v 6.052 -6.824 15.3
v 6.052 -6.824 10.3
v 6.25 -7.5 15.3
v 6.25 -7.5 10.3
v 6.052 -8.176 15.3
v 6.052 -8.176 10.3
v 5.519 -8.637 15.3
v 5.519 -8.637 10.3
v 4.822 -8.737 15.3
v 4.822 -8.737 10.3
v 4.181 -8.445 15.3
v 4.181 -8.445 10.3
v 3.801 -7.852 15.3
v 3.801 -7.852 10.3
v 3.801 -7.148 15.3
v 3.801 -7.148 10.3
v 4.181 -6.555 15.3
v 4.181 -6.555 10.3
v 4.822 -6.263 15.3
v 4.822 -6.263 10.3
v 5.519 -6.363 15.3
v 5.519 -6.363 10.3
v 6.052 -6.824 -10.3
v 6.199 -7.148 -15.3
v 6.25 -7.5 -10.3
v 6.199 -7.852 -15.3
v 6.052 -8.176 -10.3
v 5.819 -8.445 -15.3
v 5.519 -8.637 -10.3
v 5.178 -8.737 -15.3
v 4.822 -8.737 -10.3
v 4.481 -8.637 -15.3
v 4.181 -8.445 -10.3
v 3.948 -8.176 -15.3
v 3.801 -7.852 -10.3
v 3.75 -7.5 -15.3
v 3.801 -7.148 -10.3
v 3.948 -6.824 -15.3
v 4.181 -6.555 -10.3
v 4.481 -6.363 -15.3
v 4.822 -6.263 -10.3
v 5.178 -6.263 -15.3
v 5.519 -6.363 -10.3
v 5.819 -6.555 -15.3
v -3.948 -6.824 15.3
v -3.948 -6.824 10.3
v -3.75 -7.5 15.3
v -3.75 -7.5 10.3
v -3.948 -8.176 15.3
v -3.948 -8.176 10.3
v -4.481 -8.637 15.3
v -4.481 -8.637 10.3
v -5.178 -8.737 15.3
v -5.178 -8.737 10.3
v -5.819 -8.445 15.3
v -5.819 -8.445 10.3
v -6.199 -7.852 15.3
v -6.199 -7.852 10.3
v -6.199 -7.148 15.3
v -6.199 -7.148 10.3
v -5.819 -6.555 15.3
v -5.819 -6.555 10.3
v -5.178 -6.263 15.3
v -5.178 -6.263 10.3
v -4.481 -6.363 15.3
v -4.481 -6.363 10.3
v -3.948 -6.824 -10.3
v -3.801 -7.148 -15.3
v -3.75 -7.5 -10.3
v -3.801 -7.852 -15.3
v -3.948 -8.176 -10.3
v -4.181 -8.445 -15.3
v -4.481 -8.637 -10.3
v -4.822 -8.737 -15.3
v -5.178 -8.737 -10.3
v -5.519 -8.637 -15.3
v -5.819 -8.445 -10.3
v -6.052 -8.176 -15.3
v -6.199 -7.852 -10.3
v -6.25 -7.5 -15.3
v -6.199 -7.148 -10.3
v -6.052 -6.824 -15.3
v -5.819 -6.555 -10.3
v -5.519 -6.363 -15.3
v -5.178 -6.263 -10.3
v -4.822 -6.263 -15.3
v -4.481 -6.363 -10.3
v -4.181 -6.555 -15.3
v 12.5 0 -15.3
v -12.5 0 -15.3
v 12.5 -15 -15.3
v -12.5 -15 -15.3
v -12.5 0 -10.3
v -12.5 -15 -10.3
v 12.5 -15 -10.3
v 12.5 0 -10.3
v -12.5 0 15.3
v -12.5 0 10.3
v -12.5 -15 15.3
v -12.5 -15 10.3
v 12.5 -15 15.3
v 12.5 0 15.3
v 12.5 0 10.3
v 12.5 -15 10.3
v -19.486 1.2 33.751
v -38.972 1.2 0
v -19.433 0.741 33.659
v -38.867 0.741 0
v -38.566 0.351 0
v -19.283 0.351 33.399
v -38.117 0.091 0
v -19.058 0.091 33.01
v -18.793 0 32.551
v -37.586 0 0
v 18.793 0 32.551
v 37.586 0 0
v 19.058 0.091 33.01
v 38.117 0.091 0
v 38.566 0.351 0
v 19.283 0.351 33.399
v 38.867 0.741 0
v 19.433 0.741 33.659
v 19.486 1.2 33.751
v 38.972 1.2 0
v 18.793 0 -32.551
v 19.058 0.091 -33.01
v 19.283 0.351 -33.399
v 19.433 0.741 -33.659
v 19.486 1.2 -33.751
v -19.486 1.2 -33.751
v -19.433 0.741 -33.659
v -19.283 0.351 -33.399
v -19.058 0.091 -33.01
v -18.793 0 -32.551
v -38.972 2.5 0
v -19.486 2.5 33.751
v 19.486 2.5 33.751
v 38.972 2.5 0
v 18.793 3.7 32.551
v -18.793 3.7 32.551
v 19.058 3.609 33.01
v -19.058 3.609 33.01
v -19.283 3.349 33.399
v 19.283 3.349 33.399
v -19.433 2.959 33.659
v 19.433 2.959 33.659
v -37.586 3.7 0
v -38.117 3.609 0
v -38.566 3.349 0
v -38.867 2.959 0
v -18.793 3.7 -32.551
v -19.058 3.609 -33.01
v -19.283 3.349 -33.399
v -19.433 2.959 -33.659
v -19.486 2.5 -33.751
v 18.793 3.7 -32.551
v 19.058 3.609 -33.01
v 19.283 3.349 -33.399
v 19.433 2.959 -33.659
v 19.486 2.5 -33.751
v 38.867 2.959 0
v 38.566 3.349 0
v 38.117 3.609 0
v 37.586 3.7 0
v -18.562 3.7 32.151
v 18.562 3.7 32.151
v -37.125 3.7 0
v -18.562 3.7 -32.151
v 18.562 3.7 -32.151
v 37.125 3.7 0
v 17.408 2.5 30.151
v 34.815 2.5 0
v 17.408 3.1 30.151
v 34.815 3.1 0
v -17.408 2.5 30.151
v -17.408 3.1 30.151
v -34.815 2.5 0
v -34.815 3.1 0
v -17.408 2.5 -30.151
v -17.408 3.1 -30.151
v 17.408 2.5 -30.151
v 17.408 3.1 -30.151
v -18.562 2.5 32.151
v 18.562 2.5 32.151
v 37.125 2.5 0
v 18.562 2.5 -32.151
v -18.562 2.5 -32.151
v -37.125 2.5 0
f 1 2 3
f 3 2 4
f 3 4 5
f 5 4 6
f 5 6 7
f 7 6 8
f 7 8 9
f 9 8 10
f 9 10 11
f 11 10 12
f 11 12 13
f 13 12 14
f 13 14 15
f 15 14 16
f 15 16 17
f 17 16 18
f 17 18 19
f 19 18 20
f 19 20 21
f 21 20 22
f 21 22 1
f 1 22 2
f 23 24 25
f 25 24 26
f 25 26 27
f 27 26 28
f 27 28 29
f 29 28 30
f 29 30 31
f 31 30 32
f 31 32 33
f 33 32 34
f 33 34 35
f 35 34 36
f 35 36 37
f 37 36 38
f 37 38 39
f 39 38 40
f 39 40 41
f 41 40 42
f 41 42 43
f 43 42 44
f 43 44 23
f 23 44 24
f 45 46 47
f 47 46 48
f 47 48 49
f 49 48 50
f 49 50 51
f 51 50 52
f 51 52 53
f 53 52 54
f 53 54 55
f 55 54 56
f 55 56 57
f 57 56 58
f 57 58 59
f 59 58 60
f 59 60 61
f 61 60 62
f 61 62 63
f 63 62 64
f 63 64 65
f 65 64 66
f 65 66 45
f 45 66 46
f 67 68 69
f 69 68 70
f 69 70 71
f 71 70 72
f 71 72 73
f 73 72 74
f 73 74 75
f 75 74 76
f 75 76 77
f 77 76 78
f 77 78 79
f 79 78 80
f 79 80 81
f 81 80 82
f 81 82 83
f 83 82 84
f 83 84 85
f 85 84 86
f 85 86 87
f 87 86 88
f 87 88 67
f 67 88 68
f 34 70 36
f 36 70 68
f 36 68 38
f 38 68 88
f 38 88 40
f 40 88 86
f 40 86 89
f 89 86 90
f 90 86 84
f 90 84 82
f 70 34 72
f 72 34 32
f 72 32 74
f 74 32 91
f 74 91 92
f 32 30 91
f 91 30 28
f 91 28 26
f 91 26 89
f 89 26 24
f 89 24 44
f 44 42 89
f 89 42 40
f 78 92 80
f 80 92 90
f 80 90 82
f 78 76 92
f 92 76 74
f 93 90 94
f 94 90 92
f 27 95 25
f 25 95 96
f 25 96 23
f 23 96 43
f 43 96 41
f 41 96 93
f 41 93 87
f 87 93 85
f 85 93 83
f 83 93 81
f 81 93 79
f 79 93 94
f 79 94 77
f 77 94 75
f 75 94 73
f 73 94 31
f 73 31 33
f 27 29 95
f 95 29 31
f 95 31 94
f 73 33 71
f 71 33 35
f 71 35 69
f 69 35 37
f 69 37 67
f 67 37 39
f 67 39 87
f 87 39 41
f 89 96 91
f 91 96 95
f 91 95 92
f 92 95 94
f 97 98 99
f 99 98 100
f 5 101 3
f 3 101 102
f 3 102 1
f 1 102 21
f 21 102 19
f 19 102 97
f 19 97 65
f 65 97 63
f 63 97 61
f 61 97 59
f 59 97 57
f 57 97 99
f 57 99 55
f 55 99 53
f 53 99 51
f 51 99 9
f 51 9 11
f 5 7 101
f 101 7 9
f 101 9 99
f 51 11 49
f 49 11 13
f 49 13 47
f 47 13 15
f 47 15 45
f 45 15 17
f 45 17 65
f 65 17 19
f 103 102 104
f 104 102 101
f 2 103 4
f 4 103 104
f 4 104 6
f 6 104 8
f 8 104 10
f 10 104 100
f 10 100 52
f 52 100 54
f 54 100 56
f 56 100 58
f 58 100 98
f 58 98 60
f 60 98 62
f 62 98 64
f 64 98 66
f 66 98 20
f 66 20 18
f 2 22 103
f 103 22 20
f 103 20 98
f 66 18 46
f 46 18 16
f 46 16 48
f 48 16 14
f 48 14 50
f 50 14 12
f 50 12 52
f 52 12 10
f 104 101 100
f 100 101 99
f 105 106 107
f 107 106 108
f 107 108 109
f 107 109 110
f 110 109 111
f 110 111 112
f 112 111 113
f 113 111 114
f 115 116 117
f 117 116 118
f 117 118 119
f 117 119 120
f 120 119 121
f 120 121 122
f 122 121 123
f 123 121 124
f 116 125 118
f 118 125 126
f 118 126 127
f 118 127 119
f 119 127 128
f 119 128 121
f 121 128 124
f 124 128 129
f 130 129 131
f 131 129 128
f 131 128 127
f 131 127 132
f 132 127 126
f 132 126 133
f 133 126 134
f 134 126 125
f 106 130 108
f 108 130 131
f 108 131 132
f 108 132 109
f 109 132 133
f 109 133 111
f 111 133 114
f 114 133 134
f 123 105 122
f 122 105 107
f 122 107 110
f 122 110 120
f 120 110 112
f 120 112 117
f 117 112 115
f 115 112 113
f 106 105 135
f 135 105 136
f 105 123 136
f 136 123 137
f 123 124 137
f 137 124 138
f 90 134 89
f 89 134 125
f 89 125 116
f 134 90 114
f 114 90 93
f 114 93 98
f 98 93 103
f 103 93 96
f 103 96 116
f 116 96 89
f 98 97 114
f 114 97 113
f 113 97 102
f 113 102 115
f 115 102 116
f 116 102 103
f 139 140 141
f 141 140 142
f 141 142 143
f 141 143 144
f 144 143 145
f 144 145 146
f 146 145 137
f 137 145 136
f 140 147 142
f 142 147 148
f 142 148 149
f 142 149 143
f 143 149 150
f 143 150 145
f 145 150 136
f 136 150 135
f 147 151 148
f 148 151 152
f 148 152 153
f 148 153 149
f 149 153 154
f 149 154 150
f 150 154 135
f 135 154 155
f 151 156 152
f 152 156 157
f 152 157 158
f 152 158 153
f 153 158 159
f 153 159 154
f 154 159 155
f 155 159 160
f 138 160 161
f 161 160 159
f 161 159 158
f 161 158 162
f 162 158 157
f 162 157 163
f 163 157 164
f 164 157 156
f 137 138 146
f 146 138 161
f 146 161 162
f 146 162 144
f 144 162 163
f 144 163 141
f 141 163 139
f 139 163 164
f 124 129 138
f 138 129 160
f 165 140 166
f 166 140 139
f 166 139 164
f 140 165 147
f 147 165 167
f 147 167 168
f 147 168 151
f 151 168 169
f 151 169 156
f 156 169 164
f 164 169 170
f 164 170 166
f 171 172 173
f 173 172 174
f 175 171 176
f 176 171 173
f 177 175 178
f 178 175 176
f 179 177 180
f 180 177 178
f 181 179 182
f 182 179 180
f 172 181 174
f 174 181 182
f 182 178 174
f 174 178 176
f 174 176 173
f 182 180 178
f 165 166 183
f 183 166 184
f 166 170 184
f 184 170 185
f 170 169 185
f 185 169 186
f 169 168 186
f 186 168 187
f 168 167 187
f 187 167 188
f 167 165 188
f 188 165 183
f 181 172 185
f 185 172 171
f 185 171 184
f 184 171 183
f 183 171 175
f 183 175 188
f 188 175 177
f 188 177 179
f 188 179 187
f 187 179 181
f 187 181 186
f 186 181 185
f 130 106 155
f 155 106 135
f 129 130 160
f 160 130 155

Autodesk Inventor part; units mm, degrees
ref_plane "YZ Plane" through (0, 0, 0) normal (1, 0, 0) x (0, 1, 0)
ref_plane "XZ Plane" through (0, 0, 0) normal (0, 1, 0) x (-1, 0, 0)
ref_plane "XY Plane" through (0, 0, 0) normal (0, 0, 1) x (1, 0, 0)
sketch "스케치1" plane through (0, 0, 0) normal (0, 1, 0) x (-1, 0, 0)
  line L0 (17.6385, -30.5508) -> (-17.6385, -30.5508)
  line L1 (-17.6385, -30.5508) -> (-35.277, 0)
  line L2 (-35.277, 0) -> (-17.6385, 30.5508)
  line L3 (-17.6385, 30.5508) -> (17.6385, 30.5508)
  line L4 (17.6385, 30.5508) -> (35.277, 0)
  line L5 (35.277, 0) -> (17.6385, -30.5508)
  line L6 (19.486, -33.7508) -> (-19.486, -33.7508)
  line L7 (-19.486, -33.7508) -> (-38.972, 0)
  line L8 (-38.972, 0) -> (-19.486, 33.7508)
  line L9 (-19.486, 33.7508) -> (19.486, 33.7508)
  line L10 (19.486, 33.7508) -> (38.972, 0)
  line L11 (38.972, 0) -> (19.486, -33.7508)
  point P0 (0, 0)
  point P1 (0, 0)
  point P2 (0, 0)
  dimension "d0" = 70.554
  dimension "d1" = 3.2
extrude "돌출1" add sketch "스케치1" along normal blind 3.7 contours L0 L1 L2 L3 L4 L5 | L6 L7 L8 L9 L10 L11
sketch "스케치2" plane through (0, 3.7, 0) normal (0, 1, 0) x (1, 0, 0)
  line L0 (-18.5623, 32.1508) -> (18.5623, 32.1508)
  line L1 (18.5623, 32.1508) -> (37.1245, 0)
  line L2 (37.1245, 0) -> (18.5623, -32.1508)
  line L3 (18.5623, -32.1508) -> (-18.5623, -32.1508)
  line L4 (-18.5623, -32.1508) -> (-37.1245, 0)
  line L5 (-37.1245, 0) -> (-18.5623, 32.1508)
  line L6 (-19.486, 33.7508) -> (-38.972, 0) projected
  point P0 (0, 0)
  point P1 (0, 0)
  dimension "d4" = 1.6
extrude "돌출2" cut sketch "스케치2" against normal blind 1.2
sketch "스케치3" plane through (0, 2.5, 0) normal (0, 1, 0) x (1, 0, 0)
  line L0 (17.4076, -30.1508) -> (-17.4076, -30.1508)
  line L1 (-17.4076, -30.1508) -> (-34.8151, 0)
  line L2 (-34.8151, 0) -> (-17.4076, 30.1508)
  line L3 (-17.4076, 30.1508) -> (17.4076, 30.1508)
  line L4 (17.4076, 30.1508) -> (34.8151, 0)
  line L5 (34.8151, 0) -> (17.4076, -30.1508)
  line L6 (-18.5623, 32.1508) -> (18.5623, 32.1508) projected
  point P0 (0, 0)
  point P1 (0, 0)
  dimension "d7" = 2
extrude "돌출3" add sketch "스케치3" along normal blind 0.6
fillet "모깎기1" radius 1.2 12 edges at (0, 3.7, -33.7508) (0, 0, -33.7508) (-29.229, 3.7, -16.8754) (-29.229, 0, -16.8754) (-29.229, 3.7, 16.8754) (-29.229, 0, 16.8754) (0, 0, 33.7508) (0, 3.7, 33.7508) (29.229, 0, 16.8754) (29.229, 3.7, 16.8754) (29.229, 3.7, -16.8754) (29.229, 0, -16.8754)
sketch "스케치10" plane through (0, 0, 0) normal (0, -1, 0) x (1, 0, 0)
  line L0 (-12.5, 15.3) -> (12.5, 15.3)
  line L1 (12.5, 15.3) -> (12.5, 10.3)
  line L2 (12.5, 10.3) -> (-12.5, 10.3)
  line L3 (-12.5, 10.3) -> (-12.5, 15.3)
  line L4 (-12.5, 15.3) -> (12.5, 10.3) construction
  line L5 (12.5, 15.3) -> (-12.5, 10.3) construction
  line L6 (0, 0) -> (7.4968, 0)
  line L7 (-12.5, -15.3) -> (12.5, -15.3)
  line L8 (12.5, -15.3) -> (12.5, -10.3)
  line L9 (12.5, -10.3) -> (-12.5, -10.3)
  line L10 (-12.5, -10.3) -> (-12.5, -15.3)
  line L11 (-12.5, -15.3) -> (12.5, -10.3) construction
  line L12 (12.5, -15.3) -> (-12.5, -10.3) construction
  point P0 (0, 12.8)
  point P1 (0, -12.8)
  dimension "d51" = 25
  dimension "d52" = 5
  dimension "d53" = 10.3
extrude "돌출7" add sketch "스케치10" along normal blind 15
sketch "스케치11" plane through (12.5, 0, -15.3) normal (0, 0, -1) x (-1, 0, 0)
  circle A0 centre (7.5, -7.5) radius 1.25
  line L0 (-6.2932, 0) -> (31.2932, 0) projected
  line L1 (12.5, 0) -> (12.5, -3.2028)
  circle A1 centre (17.5, -7.5) radius 1.25
  point P0 (12.5, 0)
  dimension "d56" = 2.5
  dimension "d57" = 7.5
  dimension "d58" = 5
extrude "돌출8" cut sketch "스케치11" against normal up to surface (30.6 mm away)
properties part number "OV-PAM_n_6_bottom"
